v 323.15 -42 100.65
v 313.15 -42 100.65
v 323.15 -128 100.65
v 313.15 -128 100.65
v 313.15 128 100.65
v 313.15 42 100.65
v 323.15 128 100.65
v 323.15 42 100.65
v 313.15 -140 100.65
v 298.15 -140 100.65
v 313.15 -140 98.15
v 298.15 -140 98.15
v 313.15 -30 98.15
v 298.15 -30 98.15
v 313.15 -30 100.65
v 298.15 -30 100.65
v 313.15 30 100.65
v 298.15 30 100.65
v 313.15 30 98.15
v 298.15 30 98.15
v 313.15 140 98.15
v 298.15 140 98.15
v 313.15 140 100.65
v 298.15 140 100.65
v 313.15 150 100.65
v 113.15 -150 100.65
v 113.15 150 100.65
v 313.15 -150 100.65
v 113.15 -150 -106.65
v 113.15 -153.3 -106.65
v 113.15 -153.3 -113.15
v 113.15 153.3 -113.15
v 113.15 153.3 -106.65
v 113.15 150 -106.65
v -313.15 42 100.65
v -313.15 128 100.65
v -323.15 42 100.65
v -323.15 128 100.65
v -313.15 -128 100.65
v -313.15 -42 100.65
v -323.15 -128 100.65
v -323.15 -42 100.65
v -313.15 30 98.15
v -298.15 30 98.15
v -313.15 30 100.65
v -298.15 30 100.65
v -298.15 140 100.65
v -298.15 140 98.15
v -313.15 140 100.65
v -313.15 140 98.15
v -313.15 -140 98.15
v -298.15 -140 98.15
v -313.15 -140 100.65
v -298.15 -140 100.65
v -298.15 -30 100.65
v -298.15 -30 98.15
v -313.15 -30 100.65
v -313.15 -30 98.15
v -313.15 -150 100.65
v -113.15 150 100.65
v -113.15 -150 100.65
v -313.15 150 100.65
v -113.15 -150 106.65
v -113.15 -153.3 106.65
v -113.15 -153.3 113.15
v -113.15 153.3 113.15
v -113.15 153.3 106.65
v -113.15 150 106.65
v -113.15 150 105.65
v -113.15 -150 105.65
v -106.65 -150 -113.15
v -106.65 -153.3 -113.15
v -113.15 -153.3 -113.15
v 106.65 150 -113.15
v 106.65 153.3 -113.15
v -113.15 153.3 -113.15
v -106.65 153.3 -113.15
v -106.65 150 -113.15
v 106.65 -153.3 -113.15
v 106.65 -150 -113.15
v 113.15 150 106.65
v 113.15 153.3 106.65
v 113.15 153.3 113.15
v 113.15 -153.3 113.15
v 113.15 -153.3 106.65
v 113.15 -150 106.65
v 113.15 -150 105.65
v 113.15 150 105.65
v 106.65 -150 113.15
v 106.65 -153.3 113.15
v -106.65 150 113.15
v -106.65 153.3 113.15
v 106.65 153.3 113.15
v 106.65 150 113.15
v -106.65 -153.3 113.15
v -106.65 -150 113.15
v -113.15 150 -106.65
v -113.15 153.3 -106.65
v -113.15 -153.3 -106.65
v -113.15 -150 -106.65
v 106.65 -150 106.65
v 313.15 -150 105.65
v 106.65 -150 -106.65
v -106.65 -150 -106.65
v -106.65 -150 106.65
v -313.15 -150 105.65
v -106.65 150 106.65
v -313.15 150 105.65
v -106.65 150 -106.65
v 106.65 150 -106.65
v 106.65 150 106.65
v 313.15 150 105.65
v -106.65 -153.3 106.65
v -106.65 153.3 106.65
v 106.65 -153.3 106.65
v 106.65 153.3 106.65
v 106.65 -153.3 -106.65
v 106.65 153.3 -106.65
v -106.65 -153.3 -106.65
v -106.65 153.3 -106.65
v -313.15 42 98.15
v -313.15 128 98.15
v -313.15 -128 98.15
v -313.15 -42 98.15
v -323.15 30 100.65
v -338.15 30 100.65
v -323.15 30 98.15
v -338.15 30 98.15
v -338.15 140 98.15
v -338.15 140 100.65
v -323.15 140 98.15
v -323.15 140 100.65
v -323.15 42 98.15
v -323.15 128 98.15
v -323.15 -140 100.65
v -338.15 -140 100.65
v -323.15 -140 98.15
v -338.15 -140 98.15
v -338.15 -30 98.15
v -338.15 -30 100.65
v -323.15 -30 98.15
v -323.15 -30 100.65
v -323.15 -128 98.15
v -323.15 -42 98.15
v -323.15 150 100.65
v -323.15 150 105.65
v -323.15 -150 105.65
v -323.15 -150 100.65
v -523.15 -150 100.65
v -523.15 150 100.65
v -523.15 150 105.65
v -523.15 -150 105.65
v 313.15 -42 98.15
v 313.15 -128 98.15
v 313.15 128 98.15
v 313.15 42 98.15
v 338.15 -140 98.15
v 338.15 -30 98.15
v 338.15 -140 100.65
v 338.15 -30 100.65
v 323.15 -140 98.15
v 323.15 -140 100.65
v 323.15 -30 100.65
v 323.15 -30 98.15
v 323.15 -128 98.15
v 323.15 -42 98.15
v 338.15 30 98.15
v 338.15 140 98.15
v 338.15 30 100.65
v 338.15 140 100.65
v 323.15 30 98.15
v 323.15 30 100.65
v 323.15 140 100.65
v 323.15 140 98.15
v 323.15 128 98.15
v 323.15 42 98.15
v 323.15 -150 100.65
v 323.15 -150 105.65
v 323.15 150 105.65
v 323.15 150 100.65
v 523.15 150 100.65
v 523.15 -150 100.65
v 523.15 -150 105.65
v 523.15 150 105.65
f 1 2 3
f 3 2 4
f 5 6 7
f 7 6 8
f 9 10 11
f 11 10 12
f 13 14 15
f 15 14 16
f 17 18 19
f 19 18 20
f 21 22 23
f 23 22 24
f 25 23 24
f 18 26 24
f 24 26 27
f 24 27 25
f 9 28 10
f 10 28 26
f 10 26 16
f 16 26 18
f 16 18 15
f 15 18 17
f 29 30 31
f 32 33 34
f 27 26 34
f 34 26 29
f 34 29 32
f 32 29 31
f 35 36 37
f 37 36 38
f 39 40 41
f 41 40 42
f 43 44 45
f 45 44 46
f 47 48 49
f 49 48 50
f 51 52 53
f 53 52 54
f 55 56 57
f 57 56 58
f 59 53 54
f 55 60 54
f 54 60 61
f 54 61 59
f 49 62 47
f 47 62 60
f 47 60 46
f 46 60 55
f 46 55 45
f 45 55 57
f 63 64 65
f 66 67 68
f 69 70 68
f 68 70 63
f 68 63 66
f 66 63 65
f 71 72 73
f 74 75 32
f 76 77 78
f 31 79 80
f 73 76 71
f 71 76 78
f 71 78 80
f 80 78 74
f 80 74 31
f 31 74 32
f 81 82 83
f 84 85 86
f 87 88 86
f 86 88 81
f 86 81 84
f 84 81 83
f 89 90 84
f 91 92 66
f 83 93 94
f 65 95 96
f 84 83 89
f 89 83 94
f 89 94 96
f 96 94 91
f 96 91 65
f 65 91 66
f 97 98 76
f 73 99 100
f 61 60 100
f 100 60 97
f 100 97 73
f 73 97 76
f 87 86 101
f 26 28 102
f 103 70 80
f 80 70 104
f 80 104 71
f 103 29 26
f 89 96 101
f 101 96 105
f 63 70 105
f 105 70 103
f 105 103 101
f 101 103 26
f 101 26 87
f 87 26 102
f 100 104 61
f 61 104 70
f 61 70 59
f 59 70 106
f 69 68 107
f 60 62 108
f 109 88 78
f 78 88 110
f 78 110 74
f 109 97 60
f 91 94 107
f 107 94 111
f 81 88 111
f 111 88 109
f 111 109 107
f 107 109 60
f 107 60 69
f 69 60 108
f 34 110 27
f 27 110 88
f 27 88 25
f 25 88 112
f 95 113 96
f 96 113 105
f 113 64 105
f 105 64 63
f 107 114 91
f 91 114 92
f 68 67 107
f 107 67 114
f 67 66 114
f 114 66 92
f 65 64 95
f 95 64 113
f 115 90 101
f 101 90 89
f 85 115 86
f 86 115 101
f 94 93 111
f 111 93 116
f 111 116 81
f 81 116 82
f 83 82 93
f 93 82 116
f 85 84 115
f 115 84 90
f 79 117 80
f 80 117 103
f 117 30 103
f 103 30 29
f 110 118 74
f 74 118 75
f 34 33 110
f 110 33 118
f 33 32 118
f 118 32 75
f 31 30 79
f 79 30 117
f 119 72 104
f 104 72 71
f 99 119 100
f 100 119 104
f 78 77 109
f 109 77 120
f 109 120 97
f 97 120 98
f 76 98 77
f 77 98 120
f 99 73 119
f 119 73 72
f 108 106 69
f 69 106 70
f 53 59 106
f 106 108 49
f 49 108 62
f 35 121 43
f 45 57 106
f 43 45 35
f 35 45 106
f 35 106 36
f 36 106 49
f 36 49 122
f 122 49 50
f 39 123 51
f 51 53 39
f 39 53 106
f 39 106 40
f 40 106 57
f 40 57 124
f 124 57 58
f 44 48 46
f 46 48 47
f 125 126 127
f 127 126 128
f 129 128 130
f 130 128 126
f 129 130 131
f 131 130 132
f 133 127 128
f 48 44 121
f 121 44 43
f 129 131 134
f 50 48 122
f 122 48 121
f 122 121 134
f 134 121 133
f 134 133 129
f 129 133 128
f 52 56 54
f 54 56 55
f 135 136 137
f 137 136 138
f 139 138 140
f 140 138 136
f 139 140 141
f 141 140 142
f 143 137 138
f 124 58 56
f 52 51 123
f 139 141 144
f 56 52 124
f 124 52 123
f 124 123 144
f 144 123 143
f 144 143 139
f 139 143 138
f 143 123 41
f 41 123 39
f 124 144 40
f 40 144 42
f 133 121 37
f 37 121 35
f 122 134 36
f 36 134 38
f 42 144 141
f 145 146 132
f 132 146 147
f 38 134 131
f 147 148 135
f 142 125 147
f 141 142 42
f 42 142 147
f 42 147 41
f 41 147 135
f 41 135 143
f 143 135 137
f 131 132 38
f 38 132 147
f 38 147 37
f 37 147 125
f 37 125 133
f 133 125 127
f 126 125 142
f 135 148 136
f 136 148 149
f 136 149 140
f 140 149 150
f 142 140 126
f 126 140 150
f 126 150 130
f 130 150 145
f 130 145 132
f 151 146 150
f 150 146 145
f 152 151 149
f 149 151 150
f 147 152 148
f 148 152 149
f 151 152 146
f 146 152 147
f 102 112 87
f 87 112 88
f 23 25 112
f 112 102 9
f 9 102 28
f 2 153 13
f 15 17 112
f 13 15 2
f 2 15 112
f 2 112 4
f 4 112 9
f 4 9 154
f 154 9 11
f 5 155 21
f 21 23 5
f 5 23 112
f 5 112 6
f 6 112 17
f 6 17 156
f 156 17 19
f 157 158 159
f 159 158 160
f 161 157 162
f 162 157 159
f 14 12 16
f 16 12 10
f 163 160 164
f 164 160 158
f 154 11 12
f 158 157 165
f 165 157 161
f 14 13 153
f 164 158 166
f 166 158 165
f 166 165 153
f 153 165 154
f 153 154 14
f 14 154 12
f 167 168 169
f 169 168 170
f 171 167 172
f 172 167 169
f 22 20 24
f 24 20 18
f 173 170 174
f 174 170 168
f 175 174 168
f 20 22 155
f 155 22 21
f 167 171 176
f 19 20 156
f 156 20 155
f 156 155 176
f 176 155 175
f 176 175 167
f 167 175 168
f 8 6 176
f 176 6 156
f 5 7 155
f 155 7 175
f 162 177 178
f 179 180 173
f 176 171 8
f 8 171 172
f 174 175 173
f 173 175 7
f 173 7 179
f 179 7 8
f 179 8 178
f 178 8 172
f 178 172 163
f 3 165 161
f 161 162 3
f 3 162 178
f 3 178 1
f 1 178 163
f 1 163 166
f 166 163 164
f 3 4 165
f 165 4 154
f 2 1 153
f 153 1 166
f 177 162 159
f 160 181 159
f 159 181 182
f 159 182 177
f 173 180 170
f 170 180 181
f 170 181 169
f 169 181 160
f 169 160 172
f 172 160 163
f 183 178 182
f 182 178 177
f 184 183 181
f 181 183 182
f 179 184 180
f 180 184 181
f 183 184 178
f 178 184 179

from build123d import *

# Parameters (mm, degrees)
ESTRUSIONE_ESTRUSIONE2_DEPTH      = 150
ESTRUSIONE_ESTRUSIONE2_DEPTH_BACK = 150
ESTRUSIONE_ESTRUSIONE3_DEPTH      = 3.3
ESTRUSIONE_ESTRUSIONE3_DEPTH_BACK = 303.3
SCHIZZO3_W                        = 6.5
SCHIZZO3_H                        = 6.5
SCHIZZO5_W                        = 5
SCHIZZO5_H                        = 300
ESTRUSIONE_ESTRUSIONE4_DEPTH      = 200
SCHIZZO6_W                        = 40
SCHIZZO6_H                        = 110
ESTRUSIONE_ESTRUSIONE5_DEPTH      = 2.5
SCHIZZO7_W                        = 10
SCHIZZO7_H                        = 12
TAGLIO_ESTRUSIONE1_DEPTH          = 2.5
SCHIZZO8_W                        = 200
SCHIZZO8_H                        = 300
ESTRUSIONE_ESTRUSIONE6_DEPTH      = 5
SCHIZZO11_W                       = 5
SCHIZZO11_H                       = 300
ESTRUSIONE_ESTRUSIONE8_DEPTH      = 200
SCHIZZO12_W                       = 40
SCHIZZO12_H                       = 110
ESTRUSIONE_ESTRUSIONE9_DEPTH      = 2.5
SCHIZZO13_W                       = 10
SCHIZZO13_H                       = 12
TAGLIO_ESTRUSIONE2_DEPTH          = 2.5
SCHIZZO14_W                       = 200
SCHIZZO14_H                       = 300
ESTRUSIONE_ESTRUSIONE10_DEPTH     = 5


with BuildPart() as part:
    # Schizzo2 → Estrusione-Estrusione2 (new, two sides: drawn at the far end of the back side and taken through both)
    with BuildSketch(Plane(origin=(0, 0, 0), x_dir=(1, 0, 0), z_dir=(0, 1, 0)).offset(-ESTRUSIONE_ESTRUSIONE2_DEPTH_BACK)):
        Polygon((-113.15, 106.65), (-113.15, -106.65), (-106.65, -106.65), (-106.65, -113.15), (106.65, -113.15), (106.65, -106.65), (113.15, -106.65), (113.15, 106.65), (106.65, 106.65), (106.65, 113.15), (-106.65, 113.15), (-106.65, 106.65), align=None)
    extrude(amount=ESTRUSIONE_ESTRUSIONE2_DEPTH + ESTRUSIONE_ESTRUSIONE2_DEPTH_BACK)

    # Schizzo3 → Estrusione-Estrusione3 (add, two sides: drawn at the far end of the back side and taken through both)
    with BuildSketch(Plane.XZ.offset(150).offset(-ESTRUSIONE_ESTRUSIONE3_DEPTH_BACK)):
        with Locations((-109.9, 109.9)):
            Rectangle(SCHIZZO3_W, SCHIZZO3_H)
        with Locations((109.9, 109.9)):
            Rectangle(SCHIZZO3_W, SCHIZZO3_H)
        with Locations((109.9, -109.9)):
            Rectangle(SCHIZZO3_W, SCHIZZO3_H)
        with Locations((-109.9, -109.9)):
            Rectangle(SCHIZZO3_W, SCHIZZO3_H)
    extrude(amount=ESTRUSIONE_ESTRUSIONE3_DEPTH + ESTRUSIONE_ESTRUSIONE3_DEPTH_BACK)

    # Schizzo5 → Estrusione-Estrusione4 (add)
    with BuildSketch(Plane.ZY.offset(113.15)):
        with Locations((103.15, 0)):
            Rectangle(SCHIZZO5_W, SCHIZZO5_H)
    extrude(amount=ESTRUSIONE_ESTRUSIONE4_DEPTH)

    # Schizzo6 → Estrusione-Estrusione5 (add)
    with BuildSketch(Plane(origin=(0, 0, 100.65), x_dir=(-1, 0, 0), z_dir=(0, 0, -1))):
        with Locations((318.15, -85)):
            Rectangle(SCHIZZO6_W, SCHIZZO6_H)
        with Locations((318.15, 85)):
            Rectangle(SCHIZZO6_W, SCHIZZO6_H)
    extrude(amount=ESTRUSIONE_ESTRUSIONE5_DEPTH)

    # Schizzo7 → Taglio-Estrusione1 (cut)
    with BuildSketch(Plane.XY.offset(100.65)):
        with Locations((-318.15, 134)):
            Rectangle(SCHIZZO7_W, SCHIZZO7_H)
        with Locations((-318.15, 36)):
            Rectangle(SCHIZZO7_W, SCHIZZO7_H)
        with Locations((-318.15, -36)):
            Rectangle(SCHIZZO7_W, SCHIZZO7_H)
        with Locations((-318.15, -134)):
            Rectangle(SCHIZZO7_W, SCHIZZO7_H)
    extrude(amount=-TAGLIO_ESTRUSIONE1_DEPTH, mode=Mode.SUBTRACT)

    # Schizzo8 → Estrusione-Estrusione6 (add)
    with BuildSketch(Plane.XY.offset(100.65)):
        with Locations((-423.15, 0)):
            Rectangle(SCHIZZO8_W, SCHIZZO8_H)
    extrude(amount=ESTRUSIONE_ESTRUSIONE6_DEPTH)

    # Schizzo11 → Estrusione-Estrusione8 (add)
    with BuildSketch(Plane(origin=(113.15, 0, 0), x_dir=(0, 0, -1), z_dir=(1, 0, 0))):
        with Locations((-103.15, 0)):
            Rectangle(SCHIZZO11_W, SCHIZZO11_H)
    extrude(amount=ESTRUSIONE_ESTRUSIONE8_DEPTH)

    # Schizzo12 → Estrusione-Estrusione9 (add)
    with BuildSketch(Plane(origin=(0, 0, 100.65), x_dir=(-1, 0, 0), z_dir=(0, 0, -1))):
        with Locations((-318.15, 85)):
            Rectangle(SCHIZZO12_W, SCHIZZO12_H)
        with Locations((-318.15, -85)):
            Rectangle(SCHIZZO12_W, SCHIZZO12_H)
    extrude(amount=ESTRUSIONE_ESTRUSIONE9_DEPTH)

    # Schizzo13 → Taglio-Estrusione2 (cut)
    with BuildSketch(Plane(origin=(0, 0, 98.15), x_dir=(-1, 0, 0), z_dir=(0, 0, -1))):
        with Locations((-318.15, 134)):
            Rectangle(SCHIZZO13_W, SCHIZZO13_H)
        with Locations((-318.15, 36)):
            Rectangle(SCHIZZO13_W, SCHIZZO13_H)
        with Locations((-318.15, -36)):
            Rectangle(SCHIZZO13_W, SCHIZZO13_H)
        with Locations((-318.15, -134)):
            Rectangle(SCHIZZO13_W, SCHIZZO13_H)
    extrude(amount=-TAGLIO_ESTRUSIONE2_DEPTH, mode=Mode.SUBTRACT)

    # Schizzo14 → Estrusione-Estrusione10 (add)
    with BuildSketch(Plane.XY.offset(100.65)):
        with Locations((423.15, 0)):
            Rectangle(SCHIZZO14_W, SCHIZZO14_H)
    extrude(amount=ESTRUSIONE_ESTRUSIONE10_DEPTH)


solid = part.part
